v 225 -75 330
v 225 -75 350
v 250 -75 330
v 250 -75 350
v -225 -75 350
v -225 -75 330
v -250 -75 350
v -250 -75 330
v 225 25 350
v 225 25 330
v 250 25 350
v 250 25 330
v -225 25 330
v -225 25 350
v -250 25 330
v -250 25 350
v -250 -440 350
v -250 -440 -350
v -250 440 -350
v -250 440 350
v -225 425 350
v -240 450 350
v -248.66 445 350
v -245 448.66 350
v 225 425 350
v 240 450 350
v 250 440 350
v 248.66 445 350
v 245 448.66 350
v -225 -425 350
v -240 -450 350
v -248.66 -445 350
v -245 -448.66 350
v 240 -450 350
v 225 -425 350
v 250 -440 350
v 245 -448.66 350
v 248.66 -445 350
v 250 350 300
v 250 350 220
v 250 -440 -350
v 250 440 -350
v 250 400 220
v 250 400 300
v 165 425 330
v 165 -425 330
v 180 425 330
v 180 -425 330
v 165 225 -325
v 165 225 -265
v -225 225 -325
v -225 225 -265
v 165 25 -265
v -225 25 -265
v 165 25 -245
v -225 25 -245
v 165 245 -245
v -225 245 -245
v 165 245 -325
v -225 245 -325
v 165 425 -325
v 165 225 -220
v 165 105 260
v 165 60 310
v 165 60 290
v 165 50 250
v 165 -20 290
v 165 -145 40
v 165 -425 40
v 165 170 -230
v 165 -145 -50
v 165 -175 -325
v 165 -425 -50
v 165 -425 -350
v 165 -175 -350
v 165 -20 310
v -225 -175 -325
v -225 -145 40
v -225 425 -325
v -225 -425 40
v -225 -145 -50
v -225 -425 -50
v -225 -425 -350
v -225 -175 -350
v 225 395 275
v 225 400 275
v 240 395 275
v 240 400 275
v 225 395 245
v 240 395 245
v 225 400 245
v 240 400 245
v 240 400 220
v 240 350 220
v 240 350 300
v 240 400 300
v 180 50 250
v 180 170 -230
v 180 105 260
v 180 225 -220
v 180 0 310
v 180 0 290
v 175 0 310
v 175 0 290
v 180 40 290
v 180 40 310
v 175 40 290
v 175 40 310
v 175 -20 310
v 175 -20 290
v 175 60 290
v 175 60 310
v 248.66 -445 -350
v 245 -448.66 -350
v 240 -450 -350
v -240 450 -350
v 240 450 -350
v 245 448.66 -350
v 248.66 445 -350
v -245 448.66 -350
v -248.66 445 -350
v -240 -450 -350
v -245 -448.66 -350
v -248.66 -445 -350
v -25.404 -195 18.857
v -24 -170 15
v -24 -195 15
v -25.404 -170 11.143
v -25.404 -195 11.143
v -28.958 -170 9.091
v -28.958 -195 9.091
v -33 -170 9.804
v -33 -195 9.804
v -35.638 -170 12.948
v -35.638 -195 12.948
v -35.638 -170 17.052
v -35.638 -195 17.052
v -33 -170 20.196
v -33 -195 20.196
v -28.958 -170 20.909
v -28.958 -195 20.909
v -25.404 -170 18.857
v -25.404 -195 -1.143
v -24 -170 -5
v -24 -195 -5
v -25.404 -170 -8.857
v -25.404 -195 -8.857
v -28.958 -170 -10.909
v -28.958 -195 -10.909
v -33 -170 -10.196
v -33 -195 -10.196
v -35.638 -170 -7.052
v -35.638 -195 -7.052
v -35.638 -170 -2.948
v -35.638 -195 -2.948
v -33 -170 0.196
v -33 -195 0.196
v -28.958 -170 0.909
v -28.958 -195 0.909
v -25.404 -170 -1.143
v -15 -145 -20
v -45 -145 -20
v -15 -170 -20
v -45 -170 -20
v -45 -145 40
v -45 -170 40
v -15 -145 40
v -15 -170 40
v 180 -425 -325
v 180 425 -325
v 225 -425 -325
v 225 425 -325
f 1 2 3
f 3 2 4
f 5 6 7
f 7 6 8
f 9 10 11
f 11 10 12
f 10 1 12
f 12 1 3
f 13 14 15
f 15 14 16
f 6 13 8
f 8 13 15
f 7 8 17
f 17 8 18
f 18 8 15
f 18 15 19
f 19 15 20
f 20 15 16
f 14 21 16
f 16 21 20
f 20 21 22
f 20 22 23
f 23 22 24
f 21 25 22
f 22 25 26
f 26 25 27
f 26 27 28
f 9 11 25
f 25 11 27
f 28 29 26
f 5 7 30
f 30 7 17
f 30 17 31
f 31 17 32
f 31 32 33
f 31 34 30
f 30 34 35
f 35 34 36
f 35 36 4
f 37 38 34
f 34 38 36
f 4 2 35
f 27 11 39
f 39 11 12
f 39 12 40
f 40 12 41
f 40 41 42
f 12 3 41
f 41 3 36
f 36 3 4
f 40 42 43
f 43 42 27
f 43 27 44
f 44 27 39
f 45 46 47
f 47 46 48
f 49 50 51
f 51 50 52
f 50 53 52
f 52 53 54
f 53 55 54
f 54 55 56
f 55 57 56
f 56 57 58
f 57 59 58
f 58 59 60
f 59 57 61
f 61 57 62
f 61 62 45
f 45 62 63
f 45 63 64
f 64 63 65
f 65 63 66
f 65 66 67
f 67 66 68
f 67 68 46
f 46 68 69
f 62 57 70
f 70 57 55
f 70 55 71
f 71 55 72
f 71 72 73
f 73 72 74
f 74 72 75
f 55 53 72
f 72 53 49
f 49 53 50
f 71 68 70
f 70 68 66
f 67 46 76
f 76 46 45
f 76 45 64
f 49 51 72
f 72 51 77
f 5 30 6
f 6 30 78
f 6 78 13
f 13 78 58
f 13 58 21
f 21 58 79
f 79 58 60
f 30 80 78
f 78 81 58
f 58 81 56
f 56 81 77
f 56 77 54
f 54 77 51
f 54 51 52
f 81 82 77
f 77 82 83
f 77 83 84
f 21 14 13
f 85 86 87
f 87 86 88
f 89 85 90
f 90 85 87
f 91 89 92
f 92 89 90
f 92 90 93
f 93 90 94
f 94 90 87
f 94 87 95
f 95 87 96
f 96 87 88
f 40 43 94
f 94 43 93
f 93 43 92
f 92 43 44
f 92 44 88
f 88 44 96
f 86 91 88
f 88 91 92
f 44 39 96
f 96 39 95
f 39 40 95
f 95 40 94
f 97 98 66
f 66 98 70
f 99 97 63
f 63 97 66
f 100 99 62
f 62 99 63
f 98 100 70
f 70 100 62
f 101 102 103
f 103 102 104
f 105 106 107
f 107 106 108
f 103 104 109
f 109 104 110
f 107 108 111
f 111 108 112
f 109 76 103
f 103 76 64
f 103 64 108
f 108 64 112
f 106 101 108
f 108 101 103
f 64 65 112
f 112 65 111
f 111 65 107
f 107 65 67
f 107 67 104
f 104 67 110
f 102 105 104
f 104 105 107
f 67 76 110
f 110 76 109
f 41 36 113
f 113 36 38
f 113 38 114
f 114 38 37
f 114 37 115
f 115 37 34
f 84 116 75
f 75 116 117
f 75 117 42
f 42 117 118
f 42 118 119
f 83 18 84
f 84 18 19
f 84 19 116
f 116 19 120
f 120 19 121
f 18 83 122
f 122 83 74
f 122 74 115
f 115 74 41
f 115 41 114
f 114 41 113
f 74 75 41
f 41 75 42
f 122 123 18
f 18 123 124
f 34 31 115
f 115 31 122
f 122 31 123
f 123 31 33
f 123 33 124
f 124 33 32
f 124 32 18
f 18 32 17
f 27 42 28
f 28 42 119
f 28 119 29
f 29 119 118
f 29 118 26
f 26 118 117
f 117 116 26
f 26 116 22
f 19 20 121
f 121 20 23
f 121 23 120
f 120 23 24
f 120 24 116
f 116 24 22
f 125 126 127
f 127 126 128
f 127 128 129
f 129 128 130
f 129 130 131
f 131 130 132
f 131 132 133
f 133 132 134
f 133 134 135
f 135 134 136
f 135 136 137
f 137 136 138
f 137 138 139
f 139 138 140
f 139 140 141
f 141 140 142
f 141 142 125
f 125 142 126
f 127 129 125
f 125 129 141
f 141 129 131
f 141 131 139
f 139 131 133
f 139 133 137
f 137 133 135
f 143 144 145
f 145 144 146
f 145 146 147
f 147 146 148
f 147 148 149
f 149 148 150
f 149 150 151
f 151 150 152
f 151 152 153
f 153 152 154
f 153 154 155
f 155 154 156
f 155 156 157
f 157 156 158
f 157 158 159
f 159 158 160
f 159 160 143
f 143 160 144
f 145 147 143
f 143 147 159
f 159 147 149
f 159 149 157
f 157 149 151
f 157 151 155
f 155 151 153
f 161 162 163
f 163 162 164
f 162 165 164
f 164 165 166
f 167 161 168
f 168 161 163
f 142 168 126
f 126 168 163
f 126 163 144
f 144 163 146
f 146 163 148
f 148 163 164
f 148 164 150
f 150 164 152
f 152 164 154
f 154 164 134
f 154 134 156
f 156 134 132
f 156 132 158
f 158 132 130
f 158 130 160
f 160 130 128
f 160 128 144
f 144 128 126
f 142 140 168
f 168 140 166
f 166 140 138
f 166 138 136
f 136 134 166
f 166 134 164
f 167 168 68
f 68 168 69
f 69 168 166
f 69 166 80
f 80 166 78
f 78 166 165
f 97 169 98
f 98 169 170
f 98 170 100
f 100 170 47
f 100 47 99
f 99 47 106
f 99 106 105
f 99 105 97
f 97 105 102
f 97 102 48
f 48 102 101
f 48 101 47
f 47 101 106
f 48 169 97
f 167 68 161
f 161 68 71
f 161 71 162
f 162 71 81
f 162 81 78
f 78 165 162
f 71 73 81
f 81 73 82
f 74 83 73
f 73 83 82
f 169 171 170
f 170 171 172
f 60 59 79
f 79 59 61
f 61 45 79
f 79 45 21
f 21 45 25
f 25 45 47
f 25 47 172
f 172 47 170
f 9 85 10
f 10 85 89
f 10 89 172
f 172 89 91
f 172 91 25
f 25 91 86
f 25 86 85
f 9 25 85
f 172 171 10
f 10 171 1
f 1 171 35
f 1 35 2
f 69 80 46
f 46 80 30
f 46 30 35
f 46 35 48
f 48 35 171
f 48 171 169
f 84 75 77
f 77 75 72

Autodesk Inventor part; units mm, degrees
ref_plane "YZ Plane" through (0, 0, 0) normal (1, 0, 0) x (0, 1, 0)
ref_plane "XZ Plane" through (0, 0, 0) normal (0, 1, 0) x (-1, 0, 0)
ref_plane "XY Plane" through (0, 0, 0) normal (0, 0, 1) x (1, 0, 0)
sketch "草图1" plane through (0, 0, 0) normal (0, 0, 1) x (1, 0, 0)
  line L0 (-250, 450) -> (250, 450)
  line L1 (250, 450) -> (250, -450)
  line L2 (250, -450) -> (-250, -450)
  line L3 (-250, -450) -> (-250, 450)
  line L4 (-350, 0) -> (350, 0) projected
  line L5 (0, -630) -> (0, 630) projected
  point P0 (0, 0)
  dimension "d0" = 500
  dimension "d1" = 900
extrude "拉伸1" add sketch "草图1" along normal mid plane 700
sketch "草图2" plane through (0, 0, 350) normal (0, 0, 1) x (1, 0, 0)
  line L0 (-225, 425) -> (225, 425)
  line L1 (225, 425) -> (225, -425)
  line L2 (225, -425) -> (-225, -425)
  line L3 (-225, -425) -> (-225, 425)
  line L4 (0, -630) -> (0, 630) projected
  line L5 (-350, 0) -> (350, 0) projected
  point P0 (0, 0)
  point P1 (225, 0)
  point P2 (0, -425)
  point P3 (-225, 0)
  point P4 (0, 425)
  dimension "d4" = 850
  dimension "d5" = 450
extrude "拉伸2" cut sketch "草图2" against normal blind 675
sketch "草图3" plane through (0, 0, -325) normal (0, 0, 1) x (1, 0, 0)
  line L0 (225, 425) -> (225, -425) projected
  line L1 (-225, -425) -> (165, -425)
  line L2 (165, -425) -> (165, -175)
  line L3 (165, -175) -> (-225, -175)
  line L4 (-225, -175) -> (-225, -425)
  point P0 (0, 0)
  point P1 (225, -325)
  dimension "d8" = 250
  dimension "d60" = 390
extrude "拉伸3" cut sketch "草图3" against normal through all
ref_plane "工作平面1" through (180, -425, 350) normal (-1, 0, 0) x (0, 0, 1)
sketch "草图4" plane through (225, -425, 350) normal (-1, 0, 0) x (0, 0, 1)
  line L0 (-400, 280) -> (-310, 280)
  line L1 (-310, 280) -> (-310, 0)
  line L2 (-310, 0) -> (-400, 0)
  line L3 (-400, 0) -> (-400, 280)
  line L4 (-400, -168.792) -> (-400, 811.208)
  line L5 (0, 0) -> (-675, 0) projected
  line L6 (-700, 875) -> (-700, -25) projected
  point P0 (-700, 0)
  dimension "d40" = 90
  dimension "d41" = 300
  dimension "d42" = 280
extrude "拉伸4" add sketch "草图4" along normal up to surface (450 mm away)
sketch "草图8" plane through (180, -425, 350) normal (-1, 0, 0) x (0, 0, 1)
  line L0 (-20, 0) -> (-310, 0)
  line L1 (-675, 850) -> (-20, 850)
  line L2 (-20, 850) -> (-20, 0)
  line L3 (-20, 0) -> (-675, 0)
  line L4 (-675, 0) -> (-675, 850)
  line L5 (-675, 850) -> (-675, 0) projected
  line L6 (0, 850) -> (0, 0) projected
  point P0 (-350, 425)
  point P1 (-350, 0)
  point P2 (-675, 250)
  point P3 (-275, 0)
  dimension "d33" = 850
  dimension "d117" = 20
extrude "拉伸7" add sketch "草图8" along normal blind 15
sketch "草图12" plane through (225, -425, 40) normal (0, 0, 1) x (1, 0, 0)
  line L0 (0, 280) -> (-45, 280) projected
  line L1 (-45, 0) -> (0, 0) projected
  line L2 (-45, 280) -> (0, 280)
  line L3 (0, 280) -> (0, 0)
  line L4 (0, 0) -> (-45, 0)
  line L5 (-45, 0) -> (-45, 280)
  point P0 (-225, 425)
extrude "拉伸8" cut sketch "草图12" against normal up to surface (90 mm away)
sketch "草图6" plane through (225, -145, -50) normal (0, 1, 0) x (1, 0, 0)
  line L0 (-270, -90) -> (-240, -90)
  line L1 (-240, -90) -> (-240, -30)
  line L2 (-240, -30) -> (-270, -30)
  line L3 (-270, -30) -> (-270, -90)
  line L4 (-60, 0) -> (-60, 300) projected
  line L5 (-450, 0) -> (-450, 300) projected
  line L6 (-255, 100.8766) -> (-255, -114.3838)
  line L7 (-60, -90) -> (-450, -90) projected
  line L8 (-60, -90) -> (-450, -90) projected
  point P0 (0, 0)
  point P1 (-60, 60)
  point P2 (-60, 275)
  point P3 (-450, 60)
  point P4 (-60, -400)
  point P5 (-255, -90)
  dimension "d14" = 60
  dimension "d15" = 30
  dimension "d35" = 390
extrude "拉伸5" cut sketch "草图6" against normal blind 25
sketch "草图7" plane through (225, -170, -50) normal (0, 1, 0) x (1, 0, 0)
  circle A0 centre (-255, -45) radius 6
  circle A1 centre (-255, -65) radius 6
  line L0 (-270.0194, -90) -> (-239.9806, -90)
  line L1 (-60, 0) -> (-60, 300) projected
  line L2 (-450, 0) -> (-450, 300) projected
  line L3 (-255, 158.1322) -> (-255, -68.0014)
  line L4 (-240, -90) -> (-270, -90) projected
  line L5 (-270, -90) -> (-450, -90) projected
  line L6 (-60, -90) -> (-450, -90) projected
  line L7 (-60, -90) -> (-240, -90) projected
  point P0 (-255, -90)
  point P1 (-60, 60)
  point P2 (-60, 275)
  point P3 (-450, 60)
  point P4 (-60, -400)
  point P5 (-255, -90)
  dimension "d9" = 0
  dimension "d20" = 12
  dimension "d21" = 12
  dimension "d22" = 20
  dimension "d23" = 25
  dimension "d38" = 390
extrude "拉伸6" cut sketch "草图7" against normal blind 25
thread "螺纹1" size "M12x1.75" class "6H" standard "ANSI Metric M Profile" full length
thread "螺纹2" size "M12x1.75" class "6H" standard "ANSI Metric M Profile" full length
fillet "圆角1" radius 10 4 edges at (-250, 450, 0) (250, 450, 0) (-250, -450, 0) (250, -450, 0)
sketch "草图14" plane through (165, -425, -350) normal (-1, 0, 0) x (0, 0, 1)
  line L0 (640, 485) -> (660, 485)
  line L1 (660, 485) -> (660, 405)
  line L2 (660, 405) -> (640, 405)
  line L3 (640, 405) -> (640, 485)
  line L4 (680, 0) -> (680, 850) projected
  line L5 (680, 0) -> (25, 0) projected
  point P0 (350, 425)
  point P1 (700, 0)
  point P2 (700, 850)
  dimension "d69" = 80
  dimension "d70" = 20
  dimension "d115" = 20
  dimension "d118" = 405
extrude "拉伸10" cut sketch "草图14" against normal blind 10
sketch "草图15" plane through (175, -425, -350) normal (-1, 0, 0) x (0, 0, 1)
  line L0 (640, 405) -> (640, 485) projected
  line L1 (660, 405) -> (640, 405) projected
  line L2 (660, 485) -> (660, 405) projected
  line L3 (640, 485) -> (660, 485) projected
  line L4 (640, 405) -> (640, 485) projected
  line L5 (640, 465) -> (660, 465)
  line L6 (660, 465) -> (660, 425)
  line L7 (660, 425) -> (640, 425)
  line L8 (640, 425) -> (640, 465)
  line L9 (565.3666, 445) -> (668.9353, 445)
  point P0 (350, 425)
  point P1 (640, 445)
  dimension "d74" = 40
extrude "拉伸11" cut sketch "草图15" against normal up to surface (5 mm away) contours L0 L9 L2 L7 | L0 L5 L2 L9
sketch "草图17" plane through (165, -175, -325) normal (-1, 0, 0) x (0, 0, 1)
  line L0 (105, 400) -> (95, 345)
  line L1 (95, 345) -> (575, 225)
  line L2 (575, 225) -> (585, 280)
  line L3 (585, 280) -> (105, 400)
  line L4 (-25, 625) -> (675, 625) projected
  line L5 (-25, 615) -> (-25, -265) projected
  point P0 (325, 175)
  dimension "d83" = 480
  dimension "d84" = 55
  dimension "d85" = 225
  dimension "d86" = 130
  dimension "d87" = 120
  dimension "d88" = 120
extrude "拉伸13" cut sketch "草图17" against normal up to surface (15 mm away)
sketch "草图19" plane through (250, -440, 350) normal (1, 0, 0) x (0, 0, -1)
  line L0 (50, 840) -> (130, 840)
  line L1 (130, 840) -> (130, 790)
  line L2 (130, 790) -> (50, 790)
  line L3 (50, 790) -> (50, 840)
  line L4 (700, 890) -> (0, 890) projected
  line L5 (0, 0) -> (0, 880) projected
  point P0 (350, 440)
  dimension "d93" = 80
  dimension "d94" = 50
  dimension "d95" = 50
  dimension "d96" = 50
extrude "拉伸15" cut sketch "草图19" against normal blind 10
sketch "草图20" plane through (240, -440, 350) normal (1, 0, 0) x (0, 0, -1)
  line L0 (130, 790) -> (50, 790) projected
  line L1 (130, 840) -> (130, 790) projected
  line L2 (50, 840) -> (130, 840) projected
  line L3 (50, 790) -> (50, 840) projected
  line L4 (50, 840) -> (130, 840) projected
  line L5 (75, 840) -> (105, 840)
  line L6 (105, 840) -> (105, 835)
  line L7 (105, 835) -> (75, 835)
  line L8 (75, 835) -> (75, 840)
  line L9 (90, 871.8098) -> (90, 758.1154)
  point P0 (350, 440)
  point P1 (90, 840)
  point P2 (75, 840)
  point P3 (105, 840)
  dimension "d99" = 5
  dimension "d100" = 30
extrude "拉伸16" cut sketch "草图20" against normal up to surface (15 mm away) contours L9 L2 L6 L7 | L7 L8 L2 L9
sketch "草图23" plane through (-225, 425, 350) normal (1, 0, 0) x (0, 0, -1)
  line L0 (100, -375) -> (580, -255) projected
  line L1 (675, -200) -> (615, -200)
  line L2 (0, -850) -> (0, 0) projected
  line L3 (0, -850) -> (310, -850) projected
  line L4 (310, -850) -> (310, -570) projected
  line L5 (310, -570) -> (400, -570) projected
  line L6 (400, -570) -> (400, -850) projected
  line L7 (400, -850) -> (700, -850) projected
  line L8 (700, -600) -> (700, -850) projected
  line L9 (675, -600) -> (700, -600) projected
  line L10 (675, -600) -> (675, 0) projected
  line L11 (0, 0) -> (675, 0) projected
  line L12 (615, -200) -> (615, -400)
  line L13 (615, -400) -> (595, -400)
  line L14 (595, -400) -> (595, -165.9896)
  line L15 (595, -165.8218) -> (595, -180)
  line L16 (595, -180) -> (675, -180)
  line L17 (675, -180) -> (675, -200)
  point P0 (350, -425)
  point P1 (650, 0)
  dimension "d110" = 20
  dimension "d111" = 200
  dimension "d112" = 80
extrude "拉伸17" add sketch "草图23" along normal up to surface (390 mm away) contours L1 L12 L13 L14 L16 L10
sketch "草图25" plane through (-250, -440, 350) normal (-1, 0, 0) x (0, 0, 1)
  line L0 (-700, 880) -> (0, 880) projected
  line L1 (-20, 465) -> (0, 465)
  line L2 (0, 465) -> (0, 365)
  line L3 (0, 365) -> (-20, 365)
  line L4 (-20, 365) -> (-20, 465)
  line L5 (0, 880) -> (0, 0) projected
  line L6 (0, 0) -> (-700, 0) projected
  point P0 (-350, 440)
  point P1 (0, 415)
  dimension "d120" = 20
  dimension "d121" = 100
  dimension "d124" = 365
extrude "拉伸19" cut sketch "草图25" against normal through all
properties part number "外壳"
